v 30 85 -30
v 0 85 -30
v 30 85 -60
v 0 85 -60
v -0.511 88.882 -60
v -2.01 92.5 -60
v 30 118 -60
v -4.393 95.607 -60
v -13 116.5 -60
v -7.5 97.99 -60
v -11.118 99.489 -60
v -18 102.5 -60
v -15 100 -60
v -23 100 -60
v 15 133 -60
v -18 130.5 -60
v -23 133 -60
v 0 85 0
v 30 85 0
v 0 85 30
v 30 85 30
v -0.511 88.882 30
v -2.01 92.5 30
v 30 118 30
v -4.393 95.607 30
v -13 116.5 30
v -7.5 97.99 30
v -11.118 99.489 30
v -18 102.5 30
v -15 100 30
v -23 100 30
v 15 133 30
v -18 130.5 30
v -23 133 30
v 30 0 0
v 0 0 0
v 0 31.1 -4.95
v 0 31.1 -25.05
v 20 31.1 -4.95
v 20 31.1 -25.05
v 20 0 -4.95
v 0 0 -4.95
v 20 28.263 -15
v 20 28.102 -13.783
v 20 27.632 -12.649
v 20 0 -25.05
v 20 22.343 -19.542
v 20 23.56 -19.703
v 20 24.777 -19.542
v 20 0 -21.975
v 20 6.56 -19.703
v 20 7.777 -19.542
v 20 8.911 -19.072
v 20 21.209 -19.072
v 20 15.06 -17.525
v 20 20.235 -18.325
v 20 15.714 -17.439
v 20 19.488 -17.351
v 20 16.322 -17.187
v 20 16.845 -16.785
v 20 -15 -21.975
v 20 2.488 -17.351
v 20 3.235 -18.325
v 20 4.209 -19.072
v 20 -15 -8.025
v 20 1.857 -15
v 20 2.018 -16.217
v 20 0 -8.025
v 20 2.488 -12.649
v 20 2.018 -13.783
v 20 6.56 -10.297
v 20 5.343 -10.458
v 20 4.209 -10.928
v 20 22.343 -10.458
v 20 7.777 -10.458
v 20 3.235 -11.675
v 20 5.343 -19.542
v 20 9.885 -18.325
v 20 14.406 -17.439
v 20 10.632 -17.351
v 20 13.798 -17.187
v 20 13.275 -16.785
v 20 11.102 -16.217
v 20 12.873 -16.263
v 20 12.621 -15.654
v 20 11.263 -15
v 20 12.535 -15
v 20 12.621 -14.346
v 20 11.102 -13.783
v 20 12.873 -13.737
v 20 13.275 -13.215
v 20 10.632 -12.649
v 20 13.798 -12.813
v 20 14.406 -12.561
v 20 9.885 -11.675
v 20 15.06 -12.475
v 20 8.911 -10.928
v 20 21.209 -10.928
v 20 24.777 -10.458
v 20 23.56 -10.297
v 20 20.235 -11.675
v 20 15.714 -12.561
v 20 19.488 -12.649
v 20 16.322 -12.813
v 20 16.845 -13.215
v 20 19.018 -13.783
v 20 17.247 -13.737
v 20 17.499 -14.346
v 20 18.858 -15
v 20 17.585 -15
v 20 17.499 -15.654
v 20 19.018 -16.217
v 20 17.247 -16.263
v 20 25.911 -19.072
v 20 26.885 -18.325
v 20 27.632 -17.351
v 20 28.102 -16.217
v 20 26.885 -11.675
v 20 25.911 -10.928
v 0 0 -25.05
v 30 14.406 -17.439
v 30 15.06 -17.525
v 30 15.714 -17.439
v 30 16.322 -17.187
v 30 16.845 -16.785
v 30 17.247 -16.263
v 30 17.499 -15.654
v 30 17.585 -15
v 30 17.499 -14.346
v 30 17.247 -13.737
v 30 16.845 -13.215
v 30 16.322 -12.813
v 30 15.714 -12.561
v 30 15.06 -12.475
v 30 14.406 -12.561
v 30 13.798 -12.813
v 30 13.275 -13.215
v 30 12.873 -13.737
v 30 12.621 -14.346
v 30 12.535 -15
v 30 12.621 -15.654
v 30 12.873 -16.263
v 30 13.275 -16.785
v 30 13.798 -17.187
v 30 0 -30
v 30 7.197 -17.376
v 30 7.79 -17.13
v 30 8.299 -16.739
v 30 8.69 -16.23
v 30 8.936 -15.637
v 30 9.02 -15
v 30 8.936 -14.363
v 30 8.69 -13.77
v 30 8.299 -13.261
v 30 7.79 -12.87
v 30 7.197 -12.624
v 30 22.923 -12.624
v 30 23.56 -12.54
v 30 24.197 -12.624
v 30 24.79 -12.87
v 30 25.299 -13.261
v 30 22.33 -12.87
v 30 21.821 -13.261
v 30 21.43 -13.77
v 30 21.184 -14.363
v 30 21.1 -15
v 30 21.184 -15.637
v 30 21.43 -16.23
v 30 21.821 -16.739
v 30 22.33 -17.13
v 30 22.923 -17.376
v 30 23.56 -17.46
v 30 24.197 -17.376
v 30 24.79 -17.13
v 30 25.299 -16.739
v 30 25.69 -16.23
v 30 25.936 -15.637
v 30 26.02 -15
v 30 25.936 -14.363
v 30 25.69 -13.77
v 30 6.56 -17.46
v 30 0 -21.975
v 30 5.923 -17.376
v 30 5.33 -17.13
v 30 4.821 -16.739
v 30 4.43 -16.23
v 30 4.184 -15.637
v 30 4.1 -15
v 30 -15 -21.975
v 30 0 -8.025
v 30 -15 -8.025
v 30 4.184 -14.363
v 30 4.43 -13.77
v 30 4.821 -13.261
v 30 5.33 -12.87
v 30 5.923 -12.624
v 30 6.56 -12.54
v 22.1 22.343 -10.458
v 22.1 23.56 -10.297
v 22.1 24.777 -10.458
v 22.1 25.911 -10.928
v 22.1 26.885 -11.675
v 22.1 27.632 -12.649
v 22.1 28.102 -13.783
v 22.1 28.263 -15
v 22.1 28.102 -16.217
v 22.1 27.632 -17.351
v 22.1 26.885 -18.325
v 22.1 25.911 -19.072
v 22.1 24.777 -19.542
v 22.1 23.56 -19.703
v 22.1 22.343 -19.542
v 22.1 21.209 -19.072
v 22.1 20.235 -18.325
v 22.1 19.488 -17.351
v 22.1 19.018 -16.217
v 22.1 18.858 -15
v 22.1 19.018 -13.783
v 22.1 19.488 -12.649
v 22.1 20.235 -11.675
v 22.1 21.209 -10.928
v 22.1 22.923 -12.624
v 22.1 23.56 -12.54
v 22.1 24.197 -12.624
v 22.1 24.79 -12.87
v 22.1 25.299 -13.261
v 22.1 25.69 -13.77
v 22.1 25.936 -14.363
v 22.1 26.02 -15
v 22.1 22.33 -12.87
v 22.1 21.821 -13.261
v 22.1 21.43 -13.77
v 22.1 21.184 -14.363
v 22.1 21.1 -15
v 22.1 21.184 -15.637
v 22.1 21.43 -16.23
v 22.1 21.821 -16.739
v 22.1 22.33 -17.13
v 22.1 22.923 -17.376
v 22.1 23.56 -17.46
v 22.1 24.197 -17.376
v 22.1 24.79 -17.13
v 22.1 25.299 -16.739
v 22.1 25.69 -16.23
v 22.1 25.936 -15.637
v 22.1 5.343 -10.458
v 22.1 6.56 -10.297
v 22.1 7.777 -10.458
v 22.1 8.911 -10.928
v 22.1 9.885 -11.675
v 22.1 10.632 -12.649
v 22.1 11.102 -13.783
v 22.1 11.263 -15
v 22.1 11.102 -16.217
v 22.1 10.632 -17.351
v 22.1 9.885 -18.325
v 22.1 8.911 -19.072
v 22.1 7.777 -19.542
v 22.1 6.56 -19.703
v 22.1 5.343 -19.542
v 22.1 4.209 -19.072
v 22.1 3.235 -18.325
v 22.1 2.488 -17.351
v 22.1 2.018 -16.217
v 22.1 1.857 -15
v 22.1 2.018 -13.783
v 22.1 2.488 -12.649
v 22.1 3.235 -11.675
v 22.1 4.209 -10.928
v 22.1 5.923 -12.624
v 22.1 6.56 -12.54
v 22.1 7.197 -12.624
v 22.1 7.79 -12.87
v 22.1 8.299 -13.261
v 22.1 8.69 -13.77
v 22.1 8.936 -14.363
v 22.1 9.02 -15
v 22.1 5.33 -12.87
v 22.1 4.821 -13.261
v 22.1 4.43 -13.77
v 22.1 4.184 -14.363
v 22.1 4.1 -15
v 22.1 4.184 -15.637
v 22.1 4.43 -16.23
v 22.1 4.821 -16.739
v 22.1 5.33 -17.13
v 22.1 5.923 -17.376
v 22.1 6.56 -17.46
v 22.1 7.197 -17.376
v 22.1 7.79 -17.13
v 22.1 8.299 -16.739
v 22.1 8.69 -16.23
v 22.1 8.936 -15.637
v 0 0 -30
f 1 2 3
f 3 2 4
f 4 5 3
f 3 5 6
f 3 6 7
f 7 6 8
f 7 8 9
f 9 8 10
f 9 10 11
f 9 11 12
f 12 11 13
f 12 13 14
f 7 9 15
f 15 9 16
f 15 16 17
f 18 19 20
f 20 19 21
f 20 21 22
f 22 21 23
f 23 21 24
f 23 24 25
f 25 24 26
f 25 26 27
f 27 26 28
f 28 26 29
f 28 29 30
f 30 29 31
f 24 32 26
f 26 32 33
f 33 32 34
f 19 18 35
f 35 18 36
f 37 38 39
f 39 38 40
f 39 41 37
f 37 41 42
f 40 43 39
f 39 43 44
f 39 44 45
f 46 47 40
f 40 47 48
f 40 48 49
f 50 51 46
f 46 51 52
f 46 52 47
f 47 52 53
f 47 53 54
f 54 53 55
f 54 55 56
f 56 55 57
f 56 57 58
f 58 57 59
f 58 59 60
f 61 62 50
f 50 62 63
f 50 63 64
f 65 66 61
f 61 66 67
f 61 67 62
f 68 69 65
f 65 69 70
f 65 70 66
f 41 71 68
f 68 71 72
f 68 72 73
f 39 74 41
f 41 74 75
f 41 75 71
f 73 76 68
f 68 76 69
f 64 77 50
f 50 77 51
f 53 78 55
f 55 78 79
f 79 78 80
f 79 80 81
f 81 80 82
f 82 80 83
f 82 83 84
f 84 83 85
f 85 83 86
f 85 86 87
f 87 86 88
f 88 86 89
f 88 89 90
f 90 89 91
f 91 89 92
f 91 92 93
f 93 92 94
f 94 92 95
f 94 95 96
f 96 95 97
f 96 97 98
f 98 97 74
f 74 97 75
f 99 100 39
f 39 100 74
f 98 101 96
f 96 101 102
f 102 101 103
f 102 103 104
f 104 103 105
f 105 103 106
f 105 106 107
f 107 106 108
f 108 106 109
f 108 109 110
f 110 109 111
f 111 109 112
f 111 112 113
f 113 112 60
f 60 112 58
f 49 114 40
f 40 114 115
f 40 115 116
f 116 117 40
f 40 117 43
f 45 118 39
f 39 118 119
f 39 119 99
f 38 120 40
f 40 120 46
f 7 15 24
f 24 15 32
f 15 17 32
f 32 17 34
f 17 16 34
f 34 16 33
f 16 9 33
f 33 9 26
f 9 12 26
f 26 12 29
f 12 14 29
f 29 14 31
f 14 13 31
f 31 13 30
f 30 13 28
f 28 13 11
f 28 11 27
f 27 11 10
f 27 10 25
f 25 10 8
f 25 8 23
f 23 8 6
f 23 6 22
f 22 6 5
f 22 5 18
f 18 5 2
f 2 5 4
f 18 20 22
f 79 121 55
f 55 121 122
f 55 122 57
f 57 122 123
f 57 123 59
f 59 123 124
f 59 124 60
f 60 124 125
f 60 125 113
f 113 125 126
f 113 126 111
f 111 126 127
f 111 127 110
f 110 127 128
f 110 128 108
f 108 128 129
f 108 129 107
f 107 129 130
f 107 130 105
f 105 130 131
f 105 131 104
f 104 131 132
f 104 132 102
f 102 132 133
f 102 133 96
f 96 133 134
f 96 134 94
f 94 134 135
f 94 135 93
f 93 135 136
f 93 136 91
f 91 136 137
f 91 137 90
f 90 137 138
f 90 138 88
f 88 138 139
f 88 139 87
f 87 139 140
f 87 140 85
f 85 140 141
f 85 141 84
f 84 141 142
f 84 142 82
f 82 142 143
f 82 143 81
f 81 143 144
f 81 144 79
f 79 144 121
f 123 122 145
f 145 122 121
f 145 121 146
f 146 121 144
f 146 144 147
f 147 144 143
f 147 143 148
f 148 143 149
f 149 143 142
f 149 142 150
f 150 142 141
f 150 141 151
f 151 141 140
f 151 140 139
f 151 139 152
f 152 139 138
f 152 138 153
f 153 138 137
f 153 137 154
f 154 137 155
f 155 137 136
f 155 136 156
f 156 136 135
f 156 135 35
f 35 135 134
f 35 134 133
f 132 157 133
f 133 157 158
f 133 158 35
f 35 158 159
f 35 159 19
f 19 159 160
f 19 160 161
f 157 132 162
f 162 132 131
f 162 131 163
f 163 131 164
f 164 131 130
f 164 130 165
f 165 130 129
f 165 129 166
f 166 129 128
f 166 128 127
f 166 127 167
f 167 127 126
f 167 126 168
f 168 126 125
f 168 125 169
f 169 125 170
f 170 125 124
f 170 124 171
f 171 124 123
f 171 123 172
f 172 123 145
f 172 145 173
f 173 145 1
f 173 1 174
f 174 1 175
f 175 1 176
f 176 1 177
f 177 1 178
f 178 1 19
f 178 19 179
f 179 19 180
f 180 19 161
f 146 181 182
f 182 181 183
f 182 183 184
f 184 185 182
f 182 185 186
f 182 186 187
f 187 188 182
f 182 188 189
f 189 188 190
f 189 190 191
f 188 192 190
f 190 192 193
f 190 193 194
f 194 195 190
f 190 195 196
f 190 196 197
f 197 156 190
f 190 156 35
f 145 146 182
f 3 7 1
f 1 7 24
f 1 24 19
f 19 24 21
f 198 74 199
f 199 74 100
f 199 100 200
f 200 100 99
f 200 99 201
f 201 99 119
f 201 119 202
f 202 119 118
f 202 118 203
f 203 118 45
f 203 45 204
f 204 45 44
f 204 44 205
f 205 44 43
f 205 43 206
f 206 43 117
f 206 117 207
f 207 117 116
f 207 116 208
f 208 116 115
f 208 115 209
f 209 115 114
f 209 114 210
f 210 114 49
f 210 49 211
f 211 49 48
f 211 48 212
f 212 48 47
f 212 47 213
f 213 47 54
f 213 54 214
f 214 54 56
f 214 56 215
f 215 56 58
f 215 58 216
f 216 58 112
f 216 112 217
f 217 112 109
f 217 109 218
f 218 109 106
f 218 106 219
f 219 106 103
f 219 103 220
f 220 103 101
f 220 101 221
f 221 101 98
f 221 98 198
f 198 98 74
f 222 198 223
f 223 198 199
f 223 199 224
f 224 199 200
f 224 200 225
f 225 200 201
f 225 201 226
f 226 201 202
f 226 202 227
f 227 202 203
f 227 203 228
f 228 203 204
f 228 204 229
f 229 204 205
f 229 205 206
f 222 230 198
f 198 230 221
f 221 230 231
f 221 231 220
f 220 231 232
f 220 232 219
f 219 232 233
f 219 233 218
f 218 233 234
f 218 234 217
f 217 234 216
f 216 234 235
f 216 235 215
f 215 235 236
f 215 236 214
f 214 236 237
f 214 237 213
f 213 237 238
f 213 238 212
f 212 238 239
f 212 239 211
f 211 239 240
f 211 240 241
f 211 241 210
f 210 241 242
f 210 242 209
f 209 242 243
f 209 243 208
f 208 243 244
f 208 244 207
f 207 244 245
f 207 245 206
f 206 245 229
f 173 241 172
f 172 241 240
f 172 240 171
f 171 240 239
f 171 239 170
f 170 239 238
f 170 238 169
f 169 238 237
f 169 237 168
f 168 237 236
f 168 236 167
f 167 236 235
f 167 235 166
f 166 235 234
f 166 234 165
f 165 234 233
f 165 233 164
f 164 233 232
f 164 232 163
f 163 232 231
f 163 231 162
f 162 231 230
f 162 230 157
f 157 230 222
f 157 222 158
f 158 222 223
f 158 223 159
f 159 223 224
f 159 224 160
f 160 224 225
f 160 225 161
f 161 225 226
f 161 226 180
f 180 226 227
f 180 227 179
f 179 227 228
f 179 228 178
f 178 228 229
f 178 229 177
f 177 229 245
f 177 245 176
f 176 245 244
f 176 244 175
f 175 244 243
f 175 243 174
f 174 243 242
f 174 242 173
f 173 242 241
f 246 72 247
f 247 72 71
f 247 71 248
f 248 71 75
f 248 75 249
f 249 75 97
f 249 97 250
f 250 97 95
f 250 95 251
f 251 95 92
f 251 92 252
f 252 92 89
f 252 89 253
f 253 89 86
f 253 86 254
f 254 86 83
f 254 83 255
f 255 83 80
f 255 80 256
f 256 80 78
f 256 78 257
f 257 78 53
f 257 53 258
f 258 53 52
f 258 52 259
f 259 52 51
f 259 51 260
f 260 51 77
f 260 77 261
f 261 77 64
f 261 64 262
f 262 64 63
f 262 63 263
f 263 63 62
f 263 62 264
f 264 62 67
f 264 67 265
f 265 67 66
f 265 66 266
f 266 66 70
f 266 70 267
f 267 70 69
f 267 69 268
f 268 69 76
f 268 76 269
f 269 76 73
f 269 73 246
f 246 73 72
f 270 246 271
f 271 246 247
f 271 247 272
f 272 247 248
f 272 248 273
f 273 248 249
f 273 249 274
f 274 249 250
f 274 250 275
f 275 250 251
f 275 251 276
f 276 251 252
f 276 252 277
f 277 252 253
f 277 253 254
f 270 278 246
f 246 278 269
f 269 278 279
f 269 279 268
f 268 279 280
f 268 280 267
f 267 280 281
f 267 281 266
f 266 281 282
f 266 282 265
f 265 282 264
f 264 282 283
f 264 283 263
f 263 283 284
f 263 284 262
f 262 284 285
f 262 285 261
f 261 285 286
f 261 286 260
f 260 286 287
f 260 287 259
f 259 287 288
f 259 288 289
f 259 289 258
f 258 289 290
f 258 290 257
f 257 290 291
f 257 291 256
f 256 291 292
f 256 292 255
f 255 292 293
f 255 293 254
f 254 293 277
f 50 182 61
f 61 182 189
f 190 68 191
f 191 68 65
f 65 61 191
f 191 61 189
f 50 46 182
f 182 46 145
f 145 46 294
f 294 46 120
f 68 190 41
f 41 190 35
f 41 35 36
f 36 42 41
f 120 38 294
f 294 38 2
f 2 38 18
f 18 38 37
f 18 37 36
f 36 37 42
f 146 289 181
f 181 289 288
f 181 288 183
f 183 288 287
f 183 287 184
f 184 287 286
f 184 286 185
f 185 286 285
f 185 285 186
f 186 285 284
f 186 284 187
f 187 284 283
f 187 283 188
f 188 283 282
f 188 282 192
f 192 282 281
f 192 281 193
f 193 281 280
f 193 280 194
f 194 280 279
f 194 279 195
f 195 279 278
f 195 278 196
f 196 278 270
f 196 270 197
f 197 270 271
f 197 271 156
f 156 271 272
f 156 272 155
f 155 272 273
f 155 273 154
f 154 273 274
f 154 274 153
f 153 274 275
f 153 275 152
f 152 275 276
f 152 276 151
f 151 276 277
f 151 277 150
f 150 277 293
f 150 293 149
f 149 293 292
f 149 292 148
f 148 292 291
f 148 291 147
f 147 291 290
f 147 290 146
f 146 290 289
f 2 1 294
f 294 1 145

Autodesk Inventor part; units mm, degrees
ref_plane "YZ Plane" through (0, 0, 0) normal (1, 0, 0) x (0, 1, 0)
ref_plane "XZ Plane" through (0, 0, 0) normal (0, 1, 0) x (-1, 0, 0)
sketch "Sketch1" plane through (0, 0, 0) normal (0, 0, 1) x (1, 0, 0)
  line L0 (0, 0) -> (25, 0)
  line L1 (25, 0) -> (25, 40)
  line L2 (25, 40) -> (0, 40)
  line L3 (0, 40) -> (0, 0)
  dimension "d1" = 25
  dimension "d2" = 40
  dimension "d3" = 25
extrude "Extrusion1" add sketch "Sketch1" against normal blind 30
sketch "Sketch2" plane through (25, 0, 0) normal (1, 0, 0) x (0, 0, -1)
  line L0 (0, 0) -> (30, 0) projected
  circle A0 centre (15, 6.56) radius 2.46
extrude "Extrusion2" cut sketch "Sketch2" against normal blind 30
sketch "Sketch3" plane through (0, 0, 0) normal (-1, 0, 0) x (0, 0, 1)
  line L0 (0, 0) -> (-30, 0) projected
  line L1 (-25.05, 0) -> (-4.95, 0)
  line L2 (-4.95, 0) -> (-4.95, 33.12)
  line L3 (-4.95, 33.12) -> (-25.05, 33.12)
  line L4 (-25.05, 33.12) -> (-25.05, 0)
  dimension "d11" = 20.1
extrude "Extrusion3" cut sketch "Sketch3" against normal blind 20
sketch "Sketch4" plane through (0, 0, 0) normal (0, -1, 0) x (1, 0, 0)
  line L0 (20, -4.95) -> (20, -25.05) projected
  line L1 (20, -15) -> (25, -15)
  line L2 (25, 0) -> (25, -30) projected
  line L3 (20, -8.025) -> (25, -8.025)
  line L4 (25, -8.025) -> (25, -21.975)
  line L5 (25, -21.975) -> (20, -21.975)
  line L6 (20, -21.975) -> (20, -8.025)
  line L7 (20, -8.025) -> (25, -21.975) construction
  line L8 (25, -8.025) -> (20, -21.975) construction
  line L9 (25, -12.54) -> (25, -17.46) projected
  point P0 (0, 0)
  point P1 (22.5, -15)
  dimension "d14" = 13.95
extrude "Extrusion4" add sketch "Sketch4" along normal blind 15
sketch "Sketch5" plane through (20, 0, 0) normal (-1, 0, 0) x (0, 0, 1)
  circle A0 centre (-15, 6.56) radius 2.46 projected
  circle A1 centre (-15, 6.56) radius 4.7025
  circle A2 centre (-15, 6.56) radius 2.46 projected
  circle A3 centre (-15, 6.56) radius 2.46
  point P0 (0, 0)
  dimension "d17" = 9.405
extrude "Extrusion5" cut sketch "Sketch5" against normal blind 2.1
sketch "Sketch6" plane through (25, 0, 0) normal (1, 0, 0) x (0, 0, -1)
  circle A0 centre (15, 6.56) radius 4.7025 projected
  line L0 (15, 6.56) -> (15, 23.56)
  circle A1 centre (15, 23.56) radius 2.46
  point P0 (0, 0)
  dimension "d20" = 17
  dimension "d21" = 4.92
extrude "Extrusion6" cut sketch "Sketch6" against normal blind 10 contours A1
sketch "Sketch7" plane through (20, 0, 0) normal (-1, 0, 0) x (0, 0, 1)
  circle A0 centre (-15, 23.56) radius 2.46 projected
  circle A1 centre (-15, 23.56) radius 4.7025
  point P0 (0, 0)
  dimension "d24" = 9.405
extrude "Extrusion7" cut sketch "Sketch7" against normal blind 2.1
sketch "Sketch9" plane through (25, 0, 0) normal (1, 0, 0) x (0, 0, -1)
  circle A0 centre (15, 6.56) radius 2.46 projected
  circle A1 centre (15, 6.56) radius 2.46
  circle A2 centre (15, 23.56) radius 2.46 projected
  circle A3 centre (15, 23.56) radius 2.46
  line L0 (30, 40) -> (30, 0) projected
  line L1 (30, 0) -> (30, 40)
  line L2 (30, 40) -> (0, 40)
  line L3 (0, 40) -> (0, 0)
  line L4 (0, 0) -> (8.025, 0) projected
  line L5 (21.975, 0) -> (21.975, -15)
  line L6 (21.975, -15) -> (8.025, -15)
  line L7 (8.025, -15) -> (8.025, 0)
  line L8 (0, 0) -> (8.025, 0)
  line L9 (21.975, 0) -> (30, 0)
extrude "Extrusion8" add sketch "Sketch9" along normal blind 5
sketch "Sketch10" plane through (0, 40, 0) normal (0, 1, 0) x (1, 0, 0)
  line L0 (0, 30) -> (30, 30) projected
  line L1 (30, 0) -> (0, 0) projected
  line L2 (0, 30) -> (30, 30)
  line L3 (30, 30) -> (30, 0)
  line L4 (30, 0) -> (0, 0)
  line L5 (0, 0) -> (0, 30)
extrude "Extrusion9" add sketch "Sketch10" along normal blind 30
sketch "Sketch12" plane through (30, 0, 0) normal (1, 0, 0) x (0, 0, -1)
  circle A0 centre (15, 6.56) radius 2.46 projected
  line L0 (15, 6.56) -> (15, 15.06)
  circle A1 centre (15, 15.06) radius 2.525
  point P0 (0, 0)
  dimension "d31" = 8.5
  dimension "d33" = 5.05
extrude "Extrusion10" cut sketch "Sketch12" against normal blind 30 contours A1
sketch "Sketch14" plane through (0, 0, 0) normal (0, 0, 1) x (1, 0, 0)
  line L0 (30, 70) -> (0, 70) projected
  line L1 (0, 70) -> (0, 85)
  line L2 (-15, 100) -> (-23, 100)
  line L3 (30, 0) -> (30, 70) projected
  line L4 (30, 118) -> (30, 70)
  arc A0 (0, 85) -> (-15, 100) centre (-15, 85) ccw
  line L5 (30, 105) -> (30, 100)
  line L6 (-23, 133) -> (15, 133)
  line L7 (-18, 130.5) -> (-23, 133)
  line L8 (-18, 130.5) -> (-13, 116.5)
  line L9 (-18, 102.5) -> (-23, 100)
  line L10 (-18, 102.5) -> (-13, 116.5)
  line L11 (30, 118) -> (15, 133)
  point P0 (0, 0)
  point P1 (0, 100)
  dimension "d47" = 30
  dimension "d54" = 15
extrude "Extrusion12" add sketch "Sketch14" against normal blind 30
sketch "Sketch15" plane through (0, 0, -25.05) normal (-1, 0, 0) x (0, 0, 1)
  line L0 (0, 33.12) -> (20.1, 33.12) projected
  line L1 (20.1, 33.12) -> (20.1, 0) projected
  line L2 (0, 33.12) -> (20.1, 33.12)
  line L3 (20.1, 33.12) -> (20.1, 31.1)
  line L4 (20.1, 31.1) -> (0, 31.1)
  line L5 (0, 31.1) -> (0, 33.12)
  point P0 (25.05, 0)
  dimension "d57" = 2.02
extrude "Extrusion13" add sketch "Sketch15" against normal blind 20
sketch "Sketch21" plane through (0, 0, 0) normal (0, 0, 1) x (1, 0, 0)
  arc A0 (0, 85) -> (-15, 100) centre (-15, 85) ccw projected
  arc A1 (0, 85) -> (-15, 100) centre (-15, 85) ccw
  line L0 (-15, 100) -> (-23, 100) projected
  line L1 (-15, 100) -> (-23, 100)
  line L2 (-23, 100) -> (-18, 102.5) projected
  line L3 (-23, 100) -> (-18, 102.5)
  line L4 (-18, 102.5) -> (-13, 116.5) projected
  line L5 (-18, 102.5) -> (-13, 116.5)
  line L6 (-13, 116.5) -> (-18, 130.5) projected
  line L7 (-13, 116.5) -> (-18, 130.5)
  line L8 (-18, 130.5) -> (-23, 133) projected
  line L9 (-18, 130.5) -> (-23, 133)
  line L10 (-23, 133) -> (15, 133) projected
  line L11 (-23, 133) -> (15, 133)
  line L12 (15, 133) -> (30, 118) projected
  line L13 (15, 133) -> (30, 118)
  line L14 (0, 85) -> (30, 85)
  line L15 (30, 85) -> (30, 118)
  point P0 (0, 0)
extrude "Extrusion14" add sketch "Sketch21" along normal blind 30
ref_plane "Work Plane1" through (0, 0, -15) normal (0, 0, 1) x (1, 0, 0)
mirror "Mirror1" about plane through (0, 0, -15) normal (0, 0, 1) of "Extrusion14"
properties part number "28mm_x_90mm"
